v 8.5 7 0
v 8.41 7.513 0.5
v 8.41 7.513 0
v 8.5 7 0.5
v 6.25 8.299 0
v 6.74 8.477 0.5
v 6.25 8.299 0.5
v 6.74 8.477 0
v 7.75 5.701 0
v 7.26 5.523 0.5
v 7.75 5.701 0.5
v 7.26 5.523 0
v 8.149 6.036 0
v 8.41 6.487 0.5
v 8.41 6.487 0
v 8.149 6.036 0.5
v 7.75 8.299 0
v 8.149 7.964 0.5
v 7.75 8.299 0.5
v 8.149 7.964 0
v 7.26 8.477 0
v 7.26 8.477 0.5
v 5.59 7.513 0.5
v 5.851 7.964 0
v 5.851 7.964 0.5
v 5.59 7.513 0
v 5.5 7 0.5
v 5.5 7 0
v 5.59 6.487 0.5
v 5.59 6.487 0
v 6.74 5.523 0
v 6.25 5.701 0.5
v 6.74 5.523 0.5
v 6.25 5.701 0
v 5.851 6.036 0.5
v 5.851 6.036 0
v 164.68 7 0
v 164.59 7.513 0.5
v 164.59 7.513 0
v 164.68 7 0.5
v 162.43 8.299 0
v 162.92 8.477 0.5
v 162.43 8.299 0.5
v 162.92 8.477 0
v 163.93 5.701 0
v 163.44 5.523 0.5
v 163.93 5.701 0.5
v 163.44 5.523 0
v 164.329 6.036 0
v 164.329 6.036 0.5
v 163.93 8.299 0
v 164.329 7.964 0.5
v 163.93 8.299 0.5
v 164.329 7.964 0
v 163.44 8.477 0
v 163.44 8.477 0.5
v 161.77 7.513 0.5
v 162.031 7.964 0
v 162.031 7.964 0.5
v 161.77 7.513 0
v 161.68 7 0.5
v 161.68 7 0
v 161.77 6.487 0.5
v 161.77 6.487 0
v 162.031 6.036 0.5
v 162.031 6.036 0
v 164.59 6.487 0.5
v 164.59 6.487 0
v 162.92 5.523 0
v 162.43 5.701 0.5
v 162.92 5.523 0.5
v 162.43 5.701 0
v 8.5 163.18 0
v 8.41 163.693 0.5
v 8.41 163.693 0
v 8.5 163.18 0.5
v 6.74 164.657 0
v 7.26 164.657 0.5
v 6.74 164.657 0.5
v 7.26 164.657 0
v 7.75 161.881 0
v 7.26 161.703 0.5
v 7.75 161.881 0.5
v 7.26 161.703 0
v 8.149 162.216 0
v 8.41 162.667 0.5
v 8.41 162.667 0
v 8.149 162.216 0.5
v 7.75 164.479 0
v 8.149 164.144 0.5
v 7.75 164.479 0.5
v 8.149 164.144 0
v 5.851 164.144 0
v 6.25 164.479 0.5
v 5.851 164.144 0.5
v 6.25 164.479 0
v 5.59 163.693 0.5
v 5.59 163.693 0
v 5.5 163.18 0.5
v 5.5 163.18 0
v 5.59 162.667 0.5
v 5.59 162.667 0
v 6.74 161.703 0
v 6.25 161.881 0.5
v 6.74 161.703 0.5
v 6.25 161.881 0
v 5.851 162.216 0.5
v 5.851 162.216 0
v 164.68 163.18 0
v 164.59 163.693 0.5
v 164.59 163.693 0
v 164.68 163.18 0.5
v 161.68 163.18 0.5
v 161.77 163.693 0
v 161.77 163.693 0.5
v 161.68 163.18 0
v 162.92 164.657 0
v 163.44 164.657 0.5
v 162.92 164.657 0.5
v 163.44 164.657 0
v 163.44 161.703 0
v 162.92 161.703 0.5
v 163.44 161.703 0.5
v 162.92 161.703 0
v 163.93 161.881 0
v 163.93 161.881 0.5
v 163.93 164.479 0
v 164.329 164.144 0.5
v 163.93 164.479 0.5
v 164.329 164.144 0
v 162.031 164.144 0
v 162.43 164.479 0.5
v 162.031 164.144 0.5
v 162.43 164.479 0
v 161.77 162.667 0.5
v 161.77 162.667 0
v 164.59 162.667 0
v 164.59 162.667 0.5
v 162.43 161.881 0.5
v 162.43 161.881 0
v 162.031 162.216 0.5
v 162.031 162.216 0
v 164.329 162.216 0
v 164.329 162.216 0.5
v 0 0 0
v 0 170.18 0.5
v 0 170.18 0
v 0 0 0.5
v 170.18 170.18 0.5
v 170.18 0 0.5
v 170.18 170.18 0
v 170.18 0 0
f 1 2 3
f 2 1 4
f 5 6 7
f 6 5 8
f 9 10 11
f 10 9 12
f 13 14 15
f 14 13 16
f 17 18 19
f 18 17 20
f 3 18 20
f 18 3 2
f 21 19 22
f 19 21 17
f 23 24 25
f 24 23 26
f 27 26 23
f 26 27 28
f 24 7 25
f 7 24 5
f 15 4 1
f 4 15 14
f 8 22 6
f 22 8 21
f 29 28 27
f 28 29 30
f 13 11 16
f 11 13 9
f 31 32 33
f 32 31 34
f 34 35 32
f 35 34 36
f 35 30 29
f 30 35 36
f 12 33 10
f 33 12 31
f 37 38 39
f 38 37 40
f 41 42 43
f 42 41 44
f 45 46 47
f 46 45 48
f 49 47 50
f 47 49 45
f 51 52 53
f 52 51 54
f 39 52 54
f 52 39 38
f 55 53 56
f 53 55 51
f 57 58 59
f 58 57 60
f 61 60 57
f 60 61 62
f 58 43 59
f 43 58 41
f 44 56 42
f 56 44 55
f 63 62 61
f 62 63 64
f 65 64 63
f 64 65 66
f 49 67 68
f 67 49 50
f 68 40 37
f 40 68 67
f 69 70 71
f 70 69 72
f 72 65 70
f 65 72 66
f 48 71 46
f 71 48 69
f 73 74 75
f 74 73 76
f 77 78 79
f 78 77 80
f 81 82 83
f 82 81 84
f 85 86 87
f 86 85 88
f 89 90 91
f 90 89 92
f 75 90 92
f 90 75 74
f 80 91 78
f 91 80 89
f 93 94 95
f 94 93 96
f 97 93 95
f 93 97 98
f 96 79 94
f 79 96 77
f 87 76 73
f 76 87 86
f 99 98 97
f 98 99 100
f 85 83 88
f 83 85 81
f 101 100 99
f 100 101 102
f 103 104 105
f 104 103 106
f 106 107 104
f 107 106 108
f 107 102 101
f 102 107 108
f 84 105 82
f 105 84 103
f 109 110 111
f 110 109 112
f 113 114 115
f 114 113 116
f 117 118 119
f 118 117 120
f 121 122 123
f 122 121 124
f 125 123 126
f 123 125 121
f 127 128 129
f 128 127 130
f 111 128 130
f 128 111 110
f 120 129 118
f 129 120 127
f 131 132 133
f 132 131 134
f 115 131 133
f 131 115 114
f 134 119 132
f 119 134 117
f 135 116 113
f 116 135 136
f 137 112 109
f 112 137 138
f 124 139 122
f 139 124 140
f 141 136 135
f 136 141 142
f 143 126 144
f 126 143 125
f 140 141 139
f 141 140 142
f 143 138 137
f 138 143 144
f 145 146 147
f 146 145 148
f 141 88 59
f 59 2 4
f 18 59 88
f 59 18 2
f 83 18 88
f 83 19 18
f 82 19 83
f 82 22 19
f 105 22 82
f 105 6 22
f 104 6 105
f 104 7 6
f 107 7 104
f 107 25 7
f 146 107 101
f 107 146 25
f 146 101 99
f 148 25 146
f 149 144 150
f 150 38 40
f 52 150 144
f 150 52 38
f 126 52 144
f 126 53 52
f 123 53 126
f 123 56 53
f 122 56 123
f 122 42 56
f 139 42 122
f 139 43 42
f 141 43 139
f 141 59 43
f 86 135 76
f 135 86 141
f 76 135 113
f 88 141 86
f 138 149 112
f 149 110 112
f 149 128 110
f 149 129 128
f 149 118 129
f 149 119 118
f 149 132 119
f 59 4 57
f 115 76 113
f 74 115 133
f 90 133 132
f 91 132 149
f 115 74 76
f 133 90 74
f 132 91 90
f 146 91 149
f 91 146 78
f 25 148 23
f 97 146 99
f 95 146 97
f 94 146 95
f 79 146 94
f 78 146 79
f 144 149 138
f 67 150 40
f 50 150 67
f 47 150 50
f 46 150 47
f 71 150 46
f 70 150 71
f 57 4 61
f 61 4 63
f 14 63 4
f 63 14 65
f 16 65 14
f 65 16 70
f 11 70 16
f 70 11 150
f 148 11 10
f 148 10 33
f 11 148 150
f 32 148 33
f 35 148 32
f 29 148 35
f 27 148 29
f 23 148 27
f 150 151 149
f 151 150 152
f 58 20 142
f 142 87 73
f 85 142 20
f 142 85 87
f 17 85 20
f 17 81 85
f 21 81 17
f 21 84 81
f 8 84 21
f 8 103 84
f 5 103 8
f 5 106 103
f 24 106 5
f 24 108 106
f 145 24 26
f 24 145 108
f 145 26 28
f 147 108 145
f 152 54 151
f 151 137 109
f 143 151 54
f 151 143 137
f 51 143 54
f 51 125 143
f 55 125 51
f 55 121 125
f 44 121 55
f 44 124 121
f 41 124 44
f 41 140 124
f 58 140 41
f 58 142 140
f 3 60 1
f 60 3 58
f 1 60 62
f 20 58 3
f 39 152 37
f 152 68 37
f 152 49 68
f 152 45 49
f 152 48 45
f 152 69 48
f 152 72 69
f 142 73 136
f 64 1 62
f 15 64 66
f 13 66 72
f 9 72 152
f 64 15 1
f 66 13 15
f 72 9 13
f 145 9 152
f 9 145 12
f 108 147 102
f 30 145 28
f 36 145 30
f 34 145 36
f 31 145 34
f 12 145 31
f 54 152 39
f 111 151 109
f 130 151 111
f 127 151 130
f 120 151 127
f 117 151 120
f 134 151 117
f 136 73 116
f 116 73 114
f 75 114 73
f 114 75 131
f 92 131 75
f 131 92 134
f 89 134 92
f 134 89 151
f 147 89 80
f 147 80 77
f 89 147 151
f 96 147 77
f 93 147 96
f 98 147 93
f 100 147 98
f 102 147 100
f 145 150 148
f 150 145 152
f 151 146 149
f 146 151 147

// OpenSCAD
// ============================================================
// PhoneLock - Flat Lid (screws onto the open top of component tray)
// All dimensions in mm. Inches converted at 25.4mm = 1 inch.
// ============================================================

// --- Parameters ---
wall       = 3;
in2mm      = 25.4;

// Must match component tray exactly
outer_w    = 6.7  * in2mm;   // 170.18 mm  (X)
outer_d    = 6.7  * in2mm;   // 170.18 mm  (Y)

// Screw boss parameters — must match component tray exactly
boss_r     = 4;               // outer radius of corner screw boss
screw_r    = 1.5;             // M3 screw hole

// Lid
lid_thickness = 0.5;            // mm

// ============================================================
// MAIN: Flat Lid
// ============================================================
module flat_lid() {
    difference() {
        // --- Flat plate, same footprint as tray ---
        cube([outer_w, outer_d, lid_thickness]);

        // --- Screw holes, matching boss positions exactly ---
        offsets = [
            [wall + boss_r,           wall + boss_r          ],
            [outer_w - wall - boss_r, wall + boss_r          ],
            [wall + boss_r,           outer_d - wall - boss_r],
            [outer_w - wall - boss_r, outer_d - wall - boss_r]
        ];
        for (o = offsets) {
            translate([o[0], o[1], -1])
                cylinder(r = screw_r, h = lid_thickness + 2, $fn = 18);
        }
    }
}

// ============================================================
// RENDER
// ============================================================
flat_lid();
